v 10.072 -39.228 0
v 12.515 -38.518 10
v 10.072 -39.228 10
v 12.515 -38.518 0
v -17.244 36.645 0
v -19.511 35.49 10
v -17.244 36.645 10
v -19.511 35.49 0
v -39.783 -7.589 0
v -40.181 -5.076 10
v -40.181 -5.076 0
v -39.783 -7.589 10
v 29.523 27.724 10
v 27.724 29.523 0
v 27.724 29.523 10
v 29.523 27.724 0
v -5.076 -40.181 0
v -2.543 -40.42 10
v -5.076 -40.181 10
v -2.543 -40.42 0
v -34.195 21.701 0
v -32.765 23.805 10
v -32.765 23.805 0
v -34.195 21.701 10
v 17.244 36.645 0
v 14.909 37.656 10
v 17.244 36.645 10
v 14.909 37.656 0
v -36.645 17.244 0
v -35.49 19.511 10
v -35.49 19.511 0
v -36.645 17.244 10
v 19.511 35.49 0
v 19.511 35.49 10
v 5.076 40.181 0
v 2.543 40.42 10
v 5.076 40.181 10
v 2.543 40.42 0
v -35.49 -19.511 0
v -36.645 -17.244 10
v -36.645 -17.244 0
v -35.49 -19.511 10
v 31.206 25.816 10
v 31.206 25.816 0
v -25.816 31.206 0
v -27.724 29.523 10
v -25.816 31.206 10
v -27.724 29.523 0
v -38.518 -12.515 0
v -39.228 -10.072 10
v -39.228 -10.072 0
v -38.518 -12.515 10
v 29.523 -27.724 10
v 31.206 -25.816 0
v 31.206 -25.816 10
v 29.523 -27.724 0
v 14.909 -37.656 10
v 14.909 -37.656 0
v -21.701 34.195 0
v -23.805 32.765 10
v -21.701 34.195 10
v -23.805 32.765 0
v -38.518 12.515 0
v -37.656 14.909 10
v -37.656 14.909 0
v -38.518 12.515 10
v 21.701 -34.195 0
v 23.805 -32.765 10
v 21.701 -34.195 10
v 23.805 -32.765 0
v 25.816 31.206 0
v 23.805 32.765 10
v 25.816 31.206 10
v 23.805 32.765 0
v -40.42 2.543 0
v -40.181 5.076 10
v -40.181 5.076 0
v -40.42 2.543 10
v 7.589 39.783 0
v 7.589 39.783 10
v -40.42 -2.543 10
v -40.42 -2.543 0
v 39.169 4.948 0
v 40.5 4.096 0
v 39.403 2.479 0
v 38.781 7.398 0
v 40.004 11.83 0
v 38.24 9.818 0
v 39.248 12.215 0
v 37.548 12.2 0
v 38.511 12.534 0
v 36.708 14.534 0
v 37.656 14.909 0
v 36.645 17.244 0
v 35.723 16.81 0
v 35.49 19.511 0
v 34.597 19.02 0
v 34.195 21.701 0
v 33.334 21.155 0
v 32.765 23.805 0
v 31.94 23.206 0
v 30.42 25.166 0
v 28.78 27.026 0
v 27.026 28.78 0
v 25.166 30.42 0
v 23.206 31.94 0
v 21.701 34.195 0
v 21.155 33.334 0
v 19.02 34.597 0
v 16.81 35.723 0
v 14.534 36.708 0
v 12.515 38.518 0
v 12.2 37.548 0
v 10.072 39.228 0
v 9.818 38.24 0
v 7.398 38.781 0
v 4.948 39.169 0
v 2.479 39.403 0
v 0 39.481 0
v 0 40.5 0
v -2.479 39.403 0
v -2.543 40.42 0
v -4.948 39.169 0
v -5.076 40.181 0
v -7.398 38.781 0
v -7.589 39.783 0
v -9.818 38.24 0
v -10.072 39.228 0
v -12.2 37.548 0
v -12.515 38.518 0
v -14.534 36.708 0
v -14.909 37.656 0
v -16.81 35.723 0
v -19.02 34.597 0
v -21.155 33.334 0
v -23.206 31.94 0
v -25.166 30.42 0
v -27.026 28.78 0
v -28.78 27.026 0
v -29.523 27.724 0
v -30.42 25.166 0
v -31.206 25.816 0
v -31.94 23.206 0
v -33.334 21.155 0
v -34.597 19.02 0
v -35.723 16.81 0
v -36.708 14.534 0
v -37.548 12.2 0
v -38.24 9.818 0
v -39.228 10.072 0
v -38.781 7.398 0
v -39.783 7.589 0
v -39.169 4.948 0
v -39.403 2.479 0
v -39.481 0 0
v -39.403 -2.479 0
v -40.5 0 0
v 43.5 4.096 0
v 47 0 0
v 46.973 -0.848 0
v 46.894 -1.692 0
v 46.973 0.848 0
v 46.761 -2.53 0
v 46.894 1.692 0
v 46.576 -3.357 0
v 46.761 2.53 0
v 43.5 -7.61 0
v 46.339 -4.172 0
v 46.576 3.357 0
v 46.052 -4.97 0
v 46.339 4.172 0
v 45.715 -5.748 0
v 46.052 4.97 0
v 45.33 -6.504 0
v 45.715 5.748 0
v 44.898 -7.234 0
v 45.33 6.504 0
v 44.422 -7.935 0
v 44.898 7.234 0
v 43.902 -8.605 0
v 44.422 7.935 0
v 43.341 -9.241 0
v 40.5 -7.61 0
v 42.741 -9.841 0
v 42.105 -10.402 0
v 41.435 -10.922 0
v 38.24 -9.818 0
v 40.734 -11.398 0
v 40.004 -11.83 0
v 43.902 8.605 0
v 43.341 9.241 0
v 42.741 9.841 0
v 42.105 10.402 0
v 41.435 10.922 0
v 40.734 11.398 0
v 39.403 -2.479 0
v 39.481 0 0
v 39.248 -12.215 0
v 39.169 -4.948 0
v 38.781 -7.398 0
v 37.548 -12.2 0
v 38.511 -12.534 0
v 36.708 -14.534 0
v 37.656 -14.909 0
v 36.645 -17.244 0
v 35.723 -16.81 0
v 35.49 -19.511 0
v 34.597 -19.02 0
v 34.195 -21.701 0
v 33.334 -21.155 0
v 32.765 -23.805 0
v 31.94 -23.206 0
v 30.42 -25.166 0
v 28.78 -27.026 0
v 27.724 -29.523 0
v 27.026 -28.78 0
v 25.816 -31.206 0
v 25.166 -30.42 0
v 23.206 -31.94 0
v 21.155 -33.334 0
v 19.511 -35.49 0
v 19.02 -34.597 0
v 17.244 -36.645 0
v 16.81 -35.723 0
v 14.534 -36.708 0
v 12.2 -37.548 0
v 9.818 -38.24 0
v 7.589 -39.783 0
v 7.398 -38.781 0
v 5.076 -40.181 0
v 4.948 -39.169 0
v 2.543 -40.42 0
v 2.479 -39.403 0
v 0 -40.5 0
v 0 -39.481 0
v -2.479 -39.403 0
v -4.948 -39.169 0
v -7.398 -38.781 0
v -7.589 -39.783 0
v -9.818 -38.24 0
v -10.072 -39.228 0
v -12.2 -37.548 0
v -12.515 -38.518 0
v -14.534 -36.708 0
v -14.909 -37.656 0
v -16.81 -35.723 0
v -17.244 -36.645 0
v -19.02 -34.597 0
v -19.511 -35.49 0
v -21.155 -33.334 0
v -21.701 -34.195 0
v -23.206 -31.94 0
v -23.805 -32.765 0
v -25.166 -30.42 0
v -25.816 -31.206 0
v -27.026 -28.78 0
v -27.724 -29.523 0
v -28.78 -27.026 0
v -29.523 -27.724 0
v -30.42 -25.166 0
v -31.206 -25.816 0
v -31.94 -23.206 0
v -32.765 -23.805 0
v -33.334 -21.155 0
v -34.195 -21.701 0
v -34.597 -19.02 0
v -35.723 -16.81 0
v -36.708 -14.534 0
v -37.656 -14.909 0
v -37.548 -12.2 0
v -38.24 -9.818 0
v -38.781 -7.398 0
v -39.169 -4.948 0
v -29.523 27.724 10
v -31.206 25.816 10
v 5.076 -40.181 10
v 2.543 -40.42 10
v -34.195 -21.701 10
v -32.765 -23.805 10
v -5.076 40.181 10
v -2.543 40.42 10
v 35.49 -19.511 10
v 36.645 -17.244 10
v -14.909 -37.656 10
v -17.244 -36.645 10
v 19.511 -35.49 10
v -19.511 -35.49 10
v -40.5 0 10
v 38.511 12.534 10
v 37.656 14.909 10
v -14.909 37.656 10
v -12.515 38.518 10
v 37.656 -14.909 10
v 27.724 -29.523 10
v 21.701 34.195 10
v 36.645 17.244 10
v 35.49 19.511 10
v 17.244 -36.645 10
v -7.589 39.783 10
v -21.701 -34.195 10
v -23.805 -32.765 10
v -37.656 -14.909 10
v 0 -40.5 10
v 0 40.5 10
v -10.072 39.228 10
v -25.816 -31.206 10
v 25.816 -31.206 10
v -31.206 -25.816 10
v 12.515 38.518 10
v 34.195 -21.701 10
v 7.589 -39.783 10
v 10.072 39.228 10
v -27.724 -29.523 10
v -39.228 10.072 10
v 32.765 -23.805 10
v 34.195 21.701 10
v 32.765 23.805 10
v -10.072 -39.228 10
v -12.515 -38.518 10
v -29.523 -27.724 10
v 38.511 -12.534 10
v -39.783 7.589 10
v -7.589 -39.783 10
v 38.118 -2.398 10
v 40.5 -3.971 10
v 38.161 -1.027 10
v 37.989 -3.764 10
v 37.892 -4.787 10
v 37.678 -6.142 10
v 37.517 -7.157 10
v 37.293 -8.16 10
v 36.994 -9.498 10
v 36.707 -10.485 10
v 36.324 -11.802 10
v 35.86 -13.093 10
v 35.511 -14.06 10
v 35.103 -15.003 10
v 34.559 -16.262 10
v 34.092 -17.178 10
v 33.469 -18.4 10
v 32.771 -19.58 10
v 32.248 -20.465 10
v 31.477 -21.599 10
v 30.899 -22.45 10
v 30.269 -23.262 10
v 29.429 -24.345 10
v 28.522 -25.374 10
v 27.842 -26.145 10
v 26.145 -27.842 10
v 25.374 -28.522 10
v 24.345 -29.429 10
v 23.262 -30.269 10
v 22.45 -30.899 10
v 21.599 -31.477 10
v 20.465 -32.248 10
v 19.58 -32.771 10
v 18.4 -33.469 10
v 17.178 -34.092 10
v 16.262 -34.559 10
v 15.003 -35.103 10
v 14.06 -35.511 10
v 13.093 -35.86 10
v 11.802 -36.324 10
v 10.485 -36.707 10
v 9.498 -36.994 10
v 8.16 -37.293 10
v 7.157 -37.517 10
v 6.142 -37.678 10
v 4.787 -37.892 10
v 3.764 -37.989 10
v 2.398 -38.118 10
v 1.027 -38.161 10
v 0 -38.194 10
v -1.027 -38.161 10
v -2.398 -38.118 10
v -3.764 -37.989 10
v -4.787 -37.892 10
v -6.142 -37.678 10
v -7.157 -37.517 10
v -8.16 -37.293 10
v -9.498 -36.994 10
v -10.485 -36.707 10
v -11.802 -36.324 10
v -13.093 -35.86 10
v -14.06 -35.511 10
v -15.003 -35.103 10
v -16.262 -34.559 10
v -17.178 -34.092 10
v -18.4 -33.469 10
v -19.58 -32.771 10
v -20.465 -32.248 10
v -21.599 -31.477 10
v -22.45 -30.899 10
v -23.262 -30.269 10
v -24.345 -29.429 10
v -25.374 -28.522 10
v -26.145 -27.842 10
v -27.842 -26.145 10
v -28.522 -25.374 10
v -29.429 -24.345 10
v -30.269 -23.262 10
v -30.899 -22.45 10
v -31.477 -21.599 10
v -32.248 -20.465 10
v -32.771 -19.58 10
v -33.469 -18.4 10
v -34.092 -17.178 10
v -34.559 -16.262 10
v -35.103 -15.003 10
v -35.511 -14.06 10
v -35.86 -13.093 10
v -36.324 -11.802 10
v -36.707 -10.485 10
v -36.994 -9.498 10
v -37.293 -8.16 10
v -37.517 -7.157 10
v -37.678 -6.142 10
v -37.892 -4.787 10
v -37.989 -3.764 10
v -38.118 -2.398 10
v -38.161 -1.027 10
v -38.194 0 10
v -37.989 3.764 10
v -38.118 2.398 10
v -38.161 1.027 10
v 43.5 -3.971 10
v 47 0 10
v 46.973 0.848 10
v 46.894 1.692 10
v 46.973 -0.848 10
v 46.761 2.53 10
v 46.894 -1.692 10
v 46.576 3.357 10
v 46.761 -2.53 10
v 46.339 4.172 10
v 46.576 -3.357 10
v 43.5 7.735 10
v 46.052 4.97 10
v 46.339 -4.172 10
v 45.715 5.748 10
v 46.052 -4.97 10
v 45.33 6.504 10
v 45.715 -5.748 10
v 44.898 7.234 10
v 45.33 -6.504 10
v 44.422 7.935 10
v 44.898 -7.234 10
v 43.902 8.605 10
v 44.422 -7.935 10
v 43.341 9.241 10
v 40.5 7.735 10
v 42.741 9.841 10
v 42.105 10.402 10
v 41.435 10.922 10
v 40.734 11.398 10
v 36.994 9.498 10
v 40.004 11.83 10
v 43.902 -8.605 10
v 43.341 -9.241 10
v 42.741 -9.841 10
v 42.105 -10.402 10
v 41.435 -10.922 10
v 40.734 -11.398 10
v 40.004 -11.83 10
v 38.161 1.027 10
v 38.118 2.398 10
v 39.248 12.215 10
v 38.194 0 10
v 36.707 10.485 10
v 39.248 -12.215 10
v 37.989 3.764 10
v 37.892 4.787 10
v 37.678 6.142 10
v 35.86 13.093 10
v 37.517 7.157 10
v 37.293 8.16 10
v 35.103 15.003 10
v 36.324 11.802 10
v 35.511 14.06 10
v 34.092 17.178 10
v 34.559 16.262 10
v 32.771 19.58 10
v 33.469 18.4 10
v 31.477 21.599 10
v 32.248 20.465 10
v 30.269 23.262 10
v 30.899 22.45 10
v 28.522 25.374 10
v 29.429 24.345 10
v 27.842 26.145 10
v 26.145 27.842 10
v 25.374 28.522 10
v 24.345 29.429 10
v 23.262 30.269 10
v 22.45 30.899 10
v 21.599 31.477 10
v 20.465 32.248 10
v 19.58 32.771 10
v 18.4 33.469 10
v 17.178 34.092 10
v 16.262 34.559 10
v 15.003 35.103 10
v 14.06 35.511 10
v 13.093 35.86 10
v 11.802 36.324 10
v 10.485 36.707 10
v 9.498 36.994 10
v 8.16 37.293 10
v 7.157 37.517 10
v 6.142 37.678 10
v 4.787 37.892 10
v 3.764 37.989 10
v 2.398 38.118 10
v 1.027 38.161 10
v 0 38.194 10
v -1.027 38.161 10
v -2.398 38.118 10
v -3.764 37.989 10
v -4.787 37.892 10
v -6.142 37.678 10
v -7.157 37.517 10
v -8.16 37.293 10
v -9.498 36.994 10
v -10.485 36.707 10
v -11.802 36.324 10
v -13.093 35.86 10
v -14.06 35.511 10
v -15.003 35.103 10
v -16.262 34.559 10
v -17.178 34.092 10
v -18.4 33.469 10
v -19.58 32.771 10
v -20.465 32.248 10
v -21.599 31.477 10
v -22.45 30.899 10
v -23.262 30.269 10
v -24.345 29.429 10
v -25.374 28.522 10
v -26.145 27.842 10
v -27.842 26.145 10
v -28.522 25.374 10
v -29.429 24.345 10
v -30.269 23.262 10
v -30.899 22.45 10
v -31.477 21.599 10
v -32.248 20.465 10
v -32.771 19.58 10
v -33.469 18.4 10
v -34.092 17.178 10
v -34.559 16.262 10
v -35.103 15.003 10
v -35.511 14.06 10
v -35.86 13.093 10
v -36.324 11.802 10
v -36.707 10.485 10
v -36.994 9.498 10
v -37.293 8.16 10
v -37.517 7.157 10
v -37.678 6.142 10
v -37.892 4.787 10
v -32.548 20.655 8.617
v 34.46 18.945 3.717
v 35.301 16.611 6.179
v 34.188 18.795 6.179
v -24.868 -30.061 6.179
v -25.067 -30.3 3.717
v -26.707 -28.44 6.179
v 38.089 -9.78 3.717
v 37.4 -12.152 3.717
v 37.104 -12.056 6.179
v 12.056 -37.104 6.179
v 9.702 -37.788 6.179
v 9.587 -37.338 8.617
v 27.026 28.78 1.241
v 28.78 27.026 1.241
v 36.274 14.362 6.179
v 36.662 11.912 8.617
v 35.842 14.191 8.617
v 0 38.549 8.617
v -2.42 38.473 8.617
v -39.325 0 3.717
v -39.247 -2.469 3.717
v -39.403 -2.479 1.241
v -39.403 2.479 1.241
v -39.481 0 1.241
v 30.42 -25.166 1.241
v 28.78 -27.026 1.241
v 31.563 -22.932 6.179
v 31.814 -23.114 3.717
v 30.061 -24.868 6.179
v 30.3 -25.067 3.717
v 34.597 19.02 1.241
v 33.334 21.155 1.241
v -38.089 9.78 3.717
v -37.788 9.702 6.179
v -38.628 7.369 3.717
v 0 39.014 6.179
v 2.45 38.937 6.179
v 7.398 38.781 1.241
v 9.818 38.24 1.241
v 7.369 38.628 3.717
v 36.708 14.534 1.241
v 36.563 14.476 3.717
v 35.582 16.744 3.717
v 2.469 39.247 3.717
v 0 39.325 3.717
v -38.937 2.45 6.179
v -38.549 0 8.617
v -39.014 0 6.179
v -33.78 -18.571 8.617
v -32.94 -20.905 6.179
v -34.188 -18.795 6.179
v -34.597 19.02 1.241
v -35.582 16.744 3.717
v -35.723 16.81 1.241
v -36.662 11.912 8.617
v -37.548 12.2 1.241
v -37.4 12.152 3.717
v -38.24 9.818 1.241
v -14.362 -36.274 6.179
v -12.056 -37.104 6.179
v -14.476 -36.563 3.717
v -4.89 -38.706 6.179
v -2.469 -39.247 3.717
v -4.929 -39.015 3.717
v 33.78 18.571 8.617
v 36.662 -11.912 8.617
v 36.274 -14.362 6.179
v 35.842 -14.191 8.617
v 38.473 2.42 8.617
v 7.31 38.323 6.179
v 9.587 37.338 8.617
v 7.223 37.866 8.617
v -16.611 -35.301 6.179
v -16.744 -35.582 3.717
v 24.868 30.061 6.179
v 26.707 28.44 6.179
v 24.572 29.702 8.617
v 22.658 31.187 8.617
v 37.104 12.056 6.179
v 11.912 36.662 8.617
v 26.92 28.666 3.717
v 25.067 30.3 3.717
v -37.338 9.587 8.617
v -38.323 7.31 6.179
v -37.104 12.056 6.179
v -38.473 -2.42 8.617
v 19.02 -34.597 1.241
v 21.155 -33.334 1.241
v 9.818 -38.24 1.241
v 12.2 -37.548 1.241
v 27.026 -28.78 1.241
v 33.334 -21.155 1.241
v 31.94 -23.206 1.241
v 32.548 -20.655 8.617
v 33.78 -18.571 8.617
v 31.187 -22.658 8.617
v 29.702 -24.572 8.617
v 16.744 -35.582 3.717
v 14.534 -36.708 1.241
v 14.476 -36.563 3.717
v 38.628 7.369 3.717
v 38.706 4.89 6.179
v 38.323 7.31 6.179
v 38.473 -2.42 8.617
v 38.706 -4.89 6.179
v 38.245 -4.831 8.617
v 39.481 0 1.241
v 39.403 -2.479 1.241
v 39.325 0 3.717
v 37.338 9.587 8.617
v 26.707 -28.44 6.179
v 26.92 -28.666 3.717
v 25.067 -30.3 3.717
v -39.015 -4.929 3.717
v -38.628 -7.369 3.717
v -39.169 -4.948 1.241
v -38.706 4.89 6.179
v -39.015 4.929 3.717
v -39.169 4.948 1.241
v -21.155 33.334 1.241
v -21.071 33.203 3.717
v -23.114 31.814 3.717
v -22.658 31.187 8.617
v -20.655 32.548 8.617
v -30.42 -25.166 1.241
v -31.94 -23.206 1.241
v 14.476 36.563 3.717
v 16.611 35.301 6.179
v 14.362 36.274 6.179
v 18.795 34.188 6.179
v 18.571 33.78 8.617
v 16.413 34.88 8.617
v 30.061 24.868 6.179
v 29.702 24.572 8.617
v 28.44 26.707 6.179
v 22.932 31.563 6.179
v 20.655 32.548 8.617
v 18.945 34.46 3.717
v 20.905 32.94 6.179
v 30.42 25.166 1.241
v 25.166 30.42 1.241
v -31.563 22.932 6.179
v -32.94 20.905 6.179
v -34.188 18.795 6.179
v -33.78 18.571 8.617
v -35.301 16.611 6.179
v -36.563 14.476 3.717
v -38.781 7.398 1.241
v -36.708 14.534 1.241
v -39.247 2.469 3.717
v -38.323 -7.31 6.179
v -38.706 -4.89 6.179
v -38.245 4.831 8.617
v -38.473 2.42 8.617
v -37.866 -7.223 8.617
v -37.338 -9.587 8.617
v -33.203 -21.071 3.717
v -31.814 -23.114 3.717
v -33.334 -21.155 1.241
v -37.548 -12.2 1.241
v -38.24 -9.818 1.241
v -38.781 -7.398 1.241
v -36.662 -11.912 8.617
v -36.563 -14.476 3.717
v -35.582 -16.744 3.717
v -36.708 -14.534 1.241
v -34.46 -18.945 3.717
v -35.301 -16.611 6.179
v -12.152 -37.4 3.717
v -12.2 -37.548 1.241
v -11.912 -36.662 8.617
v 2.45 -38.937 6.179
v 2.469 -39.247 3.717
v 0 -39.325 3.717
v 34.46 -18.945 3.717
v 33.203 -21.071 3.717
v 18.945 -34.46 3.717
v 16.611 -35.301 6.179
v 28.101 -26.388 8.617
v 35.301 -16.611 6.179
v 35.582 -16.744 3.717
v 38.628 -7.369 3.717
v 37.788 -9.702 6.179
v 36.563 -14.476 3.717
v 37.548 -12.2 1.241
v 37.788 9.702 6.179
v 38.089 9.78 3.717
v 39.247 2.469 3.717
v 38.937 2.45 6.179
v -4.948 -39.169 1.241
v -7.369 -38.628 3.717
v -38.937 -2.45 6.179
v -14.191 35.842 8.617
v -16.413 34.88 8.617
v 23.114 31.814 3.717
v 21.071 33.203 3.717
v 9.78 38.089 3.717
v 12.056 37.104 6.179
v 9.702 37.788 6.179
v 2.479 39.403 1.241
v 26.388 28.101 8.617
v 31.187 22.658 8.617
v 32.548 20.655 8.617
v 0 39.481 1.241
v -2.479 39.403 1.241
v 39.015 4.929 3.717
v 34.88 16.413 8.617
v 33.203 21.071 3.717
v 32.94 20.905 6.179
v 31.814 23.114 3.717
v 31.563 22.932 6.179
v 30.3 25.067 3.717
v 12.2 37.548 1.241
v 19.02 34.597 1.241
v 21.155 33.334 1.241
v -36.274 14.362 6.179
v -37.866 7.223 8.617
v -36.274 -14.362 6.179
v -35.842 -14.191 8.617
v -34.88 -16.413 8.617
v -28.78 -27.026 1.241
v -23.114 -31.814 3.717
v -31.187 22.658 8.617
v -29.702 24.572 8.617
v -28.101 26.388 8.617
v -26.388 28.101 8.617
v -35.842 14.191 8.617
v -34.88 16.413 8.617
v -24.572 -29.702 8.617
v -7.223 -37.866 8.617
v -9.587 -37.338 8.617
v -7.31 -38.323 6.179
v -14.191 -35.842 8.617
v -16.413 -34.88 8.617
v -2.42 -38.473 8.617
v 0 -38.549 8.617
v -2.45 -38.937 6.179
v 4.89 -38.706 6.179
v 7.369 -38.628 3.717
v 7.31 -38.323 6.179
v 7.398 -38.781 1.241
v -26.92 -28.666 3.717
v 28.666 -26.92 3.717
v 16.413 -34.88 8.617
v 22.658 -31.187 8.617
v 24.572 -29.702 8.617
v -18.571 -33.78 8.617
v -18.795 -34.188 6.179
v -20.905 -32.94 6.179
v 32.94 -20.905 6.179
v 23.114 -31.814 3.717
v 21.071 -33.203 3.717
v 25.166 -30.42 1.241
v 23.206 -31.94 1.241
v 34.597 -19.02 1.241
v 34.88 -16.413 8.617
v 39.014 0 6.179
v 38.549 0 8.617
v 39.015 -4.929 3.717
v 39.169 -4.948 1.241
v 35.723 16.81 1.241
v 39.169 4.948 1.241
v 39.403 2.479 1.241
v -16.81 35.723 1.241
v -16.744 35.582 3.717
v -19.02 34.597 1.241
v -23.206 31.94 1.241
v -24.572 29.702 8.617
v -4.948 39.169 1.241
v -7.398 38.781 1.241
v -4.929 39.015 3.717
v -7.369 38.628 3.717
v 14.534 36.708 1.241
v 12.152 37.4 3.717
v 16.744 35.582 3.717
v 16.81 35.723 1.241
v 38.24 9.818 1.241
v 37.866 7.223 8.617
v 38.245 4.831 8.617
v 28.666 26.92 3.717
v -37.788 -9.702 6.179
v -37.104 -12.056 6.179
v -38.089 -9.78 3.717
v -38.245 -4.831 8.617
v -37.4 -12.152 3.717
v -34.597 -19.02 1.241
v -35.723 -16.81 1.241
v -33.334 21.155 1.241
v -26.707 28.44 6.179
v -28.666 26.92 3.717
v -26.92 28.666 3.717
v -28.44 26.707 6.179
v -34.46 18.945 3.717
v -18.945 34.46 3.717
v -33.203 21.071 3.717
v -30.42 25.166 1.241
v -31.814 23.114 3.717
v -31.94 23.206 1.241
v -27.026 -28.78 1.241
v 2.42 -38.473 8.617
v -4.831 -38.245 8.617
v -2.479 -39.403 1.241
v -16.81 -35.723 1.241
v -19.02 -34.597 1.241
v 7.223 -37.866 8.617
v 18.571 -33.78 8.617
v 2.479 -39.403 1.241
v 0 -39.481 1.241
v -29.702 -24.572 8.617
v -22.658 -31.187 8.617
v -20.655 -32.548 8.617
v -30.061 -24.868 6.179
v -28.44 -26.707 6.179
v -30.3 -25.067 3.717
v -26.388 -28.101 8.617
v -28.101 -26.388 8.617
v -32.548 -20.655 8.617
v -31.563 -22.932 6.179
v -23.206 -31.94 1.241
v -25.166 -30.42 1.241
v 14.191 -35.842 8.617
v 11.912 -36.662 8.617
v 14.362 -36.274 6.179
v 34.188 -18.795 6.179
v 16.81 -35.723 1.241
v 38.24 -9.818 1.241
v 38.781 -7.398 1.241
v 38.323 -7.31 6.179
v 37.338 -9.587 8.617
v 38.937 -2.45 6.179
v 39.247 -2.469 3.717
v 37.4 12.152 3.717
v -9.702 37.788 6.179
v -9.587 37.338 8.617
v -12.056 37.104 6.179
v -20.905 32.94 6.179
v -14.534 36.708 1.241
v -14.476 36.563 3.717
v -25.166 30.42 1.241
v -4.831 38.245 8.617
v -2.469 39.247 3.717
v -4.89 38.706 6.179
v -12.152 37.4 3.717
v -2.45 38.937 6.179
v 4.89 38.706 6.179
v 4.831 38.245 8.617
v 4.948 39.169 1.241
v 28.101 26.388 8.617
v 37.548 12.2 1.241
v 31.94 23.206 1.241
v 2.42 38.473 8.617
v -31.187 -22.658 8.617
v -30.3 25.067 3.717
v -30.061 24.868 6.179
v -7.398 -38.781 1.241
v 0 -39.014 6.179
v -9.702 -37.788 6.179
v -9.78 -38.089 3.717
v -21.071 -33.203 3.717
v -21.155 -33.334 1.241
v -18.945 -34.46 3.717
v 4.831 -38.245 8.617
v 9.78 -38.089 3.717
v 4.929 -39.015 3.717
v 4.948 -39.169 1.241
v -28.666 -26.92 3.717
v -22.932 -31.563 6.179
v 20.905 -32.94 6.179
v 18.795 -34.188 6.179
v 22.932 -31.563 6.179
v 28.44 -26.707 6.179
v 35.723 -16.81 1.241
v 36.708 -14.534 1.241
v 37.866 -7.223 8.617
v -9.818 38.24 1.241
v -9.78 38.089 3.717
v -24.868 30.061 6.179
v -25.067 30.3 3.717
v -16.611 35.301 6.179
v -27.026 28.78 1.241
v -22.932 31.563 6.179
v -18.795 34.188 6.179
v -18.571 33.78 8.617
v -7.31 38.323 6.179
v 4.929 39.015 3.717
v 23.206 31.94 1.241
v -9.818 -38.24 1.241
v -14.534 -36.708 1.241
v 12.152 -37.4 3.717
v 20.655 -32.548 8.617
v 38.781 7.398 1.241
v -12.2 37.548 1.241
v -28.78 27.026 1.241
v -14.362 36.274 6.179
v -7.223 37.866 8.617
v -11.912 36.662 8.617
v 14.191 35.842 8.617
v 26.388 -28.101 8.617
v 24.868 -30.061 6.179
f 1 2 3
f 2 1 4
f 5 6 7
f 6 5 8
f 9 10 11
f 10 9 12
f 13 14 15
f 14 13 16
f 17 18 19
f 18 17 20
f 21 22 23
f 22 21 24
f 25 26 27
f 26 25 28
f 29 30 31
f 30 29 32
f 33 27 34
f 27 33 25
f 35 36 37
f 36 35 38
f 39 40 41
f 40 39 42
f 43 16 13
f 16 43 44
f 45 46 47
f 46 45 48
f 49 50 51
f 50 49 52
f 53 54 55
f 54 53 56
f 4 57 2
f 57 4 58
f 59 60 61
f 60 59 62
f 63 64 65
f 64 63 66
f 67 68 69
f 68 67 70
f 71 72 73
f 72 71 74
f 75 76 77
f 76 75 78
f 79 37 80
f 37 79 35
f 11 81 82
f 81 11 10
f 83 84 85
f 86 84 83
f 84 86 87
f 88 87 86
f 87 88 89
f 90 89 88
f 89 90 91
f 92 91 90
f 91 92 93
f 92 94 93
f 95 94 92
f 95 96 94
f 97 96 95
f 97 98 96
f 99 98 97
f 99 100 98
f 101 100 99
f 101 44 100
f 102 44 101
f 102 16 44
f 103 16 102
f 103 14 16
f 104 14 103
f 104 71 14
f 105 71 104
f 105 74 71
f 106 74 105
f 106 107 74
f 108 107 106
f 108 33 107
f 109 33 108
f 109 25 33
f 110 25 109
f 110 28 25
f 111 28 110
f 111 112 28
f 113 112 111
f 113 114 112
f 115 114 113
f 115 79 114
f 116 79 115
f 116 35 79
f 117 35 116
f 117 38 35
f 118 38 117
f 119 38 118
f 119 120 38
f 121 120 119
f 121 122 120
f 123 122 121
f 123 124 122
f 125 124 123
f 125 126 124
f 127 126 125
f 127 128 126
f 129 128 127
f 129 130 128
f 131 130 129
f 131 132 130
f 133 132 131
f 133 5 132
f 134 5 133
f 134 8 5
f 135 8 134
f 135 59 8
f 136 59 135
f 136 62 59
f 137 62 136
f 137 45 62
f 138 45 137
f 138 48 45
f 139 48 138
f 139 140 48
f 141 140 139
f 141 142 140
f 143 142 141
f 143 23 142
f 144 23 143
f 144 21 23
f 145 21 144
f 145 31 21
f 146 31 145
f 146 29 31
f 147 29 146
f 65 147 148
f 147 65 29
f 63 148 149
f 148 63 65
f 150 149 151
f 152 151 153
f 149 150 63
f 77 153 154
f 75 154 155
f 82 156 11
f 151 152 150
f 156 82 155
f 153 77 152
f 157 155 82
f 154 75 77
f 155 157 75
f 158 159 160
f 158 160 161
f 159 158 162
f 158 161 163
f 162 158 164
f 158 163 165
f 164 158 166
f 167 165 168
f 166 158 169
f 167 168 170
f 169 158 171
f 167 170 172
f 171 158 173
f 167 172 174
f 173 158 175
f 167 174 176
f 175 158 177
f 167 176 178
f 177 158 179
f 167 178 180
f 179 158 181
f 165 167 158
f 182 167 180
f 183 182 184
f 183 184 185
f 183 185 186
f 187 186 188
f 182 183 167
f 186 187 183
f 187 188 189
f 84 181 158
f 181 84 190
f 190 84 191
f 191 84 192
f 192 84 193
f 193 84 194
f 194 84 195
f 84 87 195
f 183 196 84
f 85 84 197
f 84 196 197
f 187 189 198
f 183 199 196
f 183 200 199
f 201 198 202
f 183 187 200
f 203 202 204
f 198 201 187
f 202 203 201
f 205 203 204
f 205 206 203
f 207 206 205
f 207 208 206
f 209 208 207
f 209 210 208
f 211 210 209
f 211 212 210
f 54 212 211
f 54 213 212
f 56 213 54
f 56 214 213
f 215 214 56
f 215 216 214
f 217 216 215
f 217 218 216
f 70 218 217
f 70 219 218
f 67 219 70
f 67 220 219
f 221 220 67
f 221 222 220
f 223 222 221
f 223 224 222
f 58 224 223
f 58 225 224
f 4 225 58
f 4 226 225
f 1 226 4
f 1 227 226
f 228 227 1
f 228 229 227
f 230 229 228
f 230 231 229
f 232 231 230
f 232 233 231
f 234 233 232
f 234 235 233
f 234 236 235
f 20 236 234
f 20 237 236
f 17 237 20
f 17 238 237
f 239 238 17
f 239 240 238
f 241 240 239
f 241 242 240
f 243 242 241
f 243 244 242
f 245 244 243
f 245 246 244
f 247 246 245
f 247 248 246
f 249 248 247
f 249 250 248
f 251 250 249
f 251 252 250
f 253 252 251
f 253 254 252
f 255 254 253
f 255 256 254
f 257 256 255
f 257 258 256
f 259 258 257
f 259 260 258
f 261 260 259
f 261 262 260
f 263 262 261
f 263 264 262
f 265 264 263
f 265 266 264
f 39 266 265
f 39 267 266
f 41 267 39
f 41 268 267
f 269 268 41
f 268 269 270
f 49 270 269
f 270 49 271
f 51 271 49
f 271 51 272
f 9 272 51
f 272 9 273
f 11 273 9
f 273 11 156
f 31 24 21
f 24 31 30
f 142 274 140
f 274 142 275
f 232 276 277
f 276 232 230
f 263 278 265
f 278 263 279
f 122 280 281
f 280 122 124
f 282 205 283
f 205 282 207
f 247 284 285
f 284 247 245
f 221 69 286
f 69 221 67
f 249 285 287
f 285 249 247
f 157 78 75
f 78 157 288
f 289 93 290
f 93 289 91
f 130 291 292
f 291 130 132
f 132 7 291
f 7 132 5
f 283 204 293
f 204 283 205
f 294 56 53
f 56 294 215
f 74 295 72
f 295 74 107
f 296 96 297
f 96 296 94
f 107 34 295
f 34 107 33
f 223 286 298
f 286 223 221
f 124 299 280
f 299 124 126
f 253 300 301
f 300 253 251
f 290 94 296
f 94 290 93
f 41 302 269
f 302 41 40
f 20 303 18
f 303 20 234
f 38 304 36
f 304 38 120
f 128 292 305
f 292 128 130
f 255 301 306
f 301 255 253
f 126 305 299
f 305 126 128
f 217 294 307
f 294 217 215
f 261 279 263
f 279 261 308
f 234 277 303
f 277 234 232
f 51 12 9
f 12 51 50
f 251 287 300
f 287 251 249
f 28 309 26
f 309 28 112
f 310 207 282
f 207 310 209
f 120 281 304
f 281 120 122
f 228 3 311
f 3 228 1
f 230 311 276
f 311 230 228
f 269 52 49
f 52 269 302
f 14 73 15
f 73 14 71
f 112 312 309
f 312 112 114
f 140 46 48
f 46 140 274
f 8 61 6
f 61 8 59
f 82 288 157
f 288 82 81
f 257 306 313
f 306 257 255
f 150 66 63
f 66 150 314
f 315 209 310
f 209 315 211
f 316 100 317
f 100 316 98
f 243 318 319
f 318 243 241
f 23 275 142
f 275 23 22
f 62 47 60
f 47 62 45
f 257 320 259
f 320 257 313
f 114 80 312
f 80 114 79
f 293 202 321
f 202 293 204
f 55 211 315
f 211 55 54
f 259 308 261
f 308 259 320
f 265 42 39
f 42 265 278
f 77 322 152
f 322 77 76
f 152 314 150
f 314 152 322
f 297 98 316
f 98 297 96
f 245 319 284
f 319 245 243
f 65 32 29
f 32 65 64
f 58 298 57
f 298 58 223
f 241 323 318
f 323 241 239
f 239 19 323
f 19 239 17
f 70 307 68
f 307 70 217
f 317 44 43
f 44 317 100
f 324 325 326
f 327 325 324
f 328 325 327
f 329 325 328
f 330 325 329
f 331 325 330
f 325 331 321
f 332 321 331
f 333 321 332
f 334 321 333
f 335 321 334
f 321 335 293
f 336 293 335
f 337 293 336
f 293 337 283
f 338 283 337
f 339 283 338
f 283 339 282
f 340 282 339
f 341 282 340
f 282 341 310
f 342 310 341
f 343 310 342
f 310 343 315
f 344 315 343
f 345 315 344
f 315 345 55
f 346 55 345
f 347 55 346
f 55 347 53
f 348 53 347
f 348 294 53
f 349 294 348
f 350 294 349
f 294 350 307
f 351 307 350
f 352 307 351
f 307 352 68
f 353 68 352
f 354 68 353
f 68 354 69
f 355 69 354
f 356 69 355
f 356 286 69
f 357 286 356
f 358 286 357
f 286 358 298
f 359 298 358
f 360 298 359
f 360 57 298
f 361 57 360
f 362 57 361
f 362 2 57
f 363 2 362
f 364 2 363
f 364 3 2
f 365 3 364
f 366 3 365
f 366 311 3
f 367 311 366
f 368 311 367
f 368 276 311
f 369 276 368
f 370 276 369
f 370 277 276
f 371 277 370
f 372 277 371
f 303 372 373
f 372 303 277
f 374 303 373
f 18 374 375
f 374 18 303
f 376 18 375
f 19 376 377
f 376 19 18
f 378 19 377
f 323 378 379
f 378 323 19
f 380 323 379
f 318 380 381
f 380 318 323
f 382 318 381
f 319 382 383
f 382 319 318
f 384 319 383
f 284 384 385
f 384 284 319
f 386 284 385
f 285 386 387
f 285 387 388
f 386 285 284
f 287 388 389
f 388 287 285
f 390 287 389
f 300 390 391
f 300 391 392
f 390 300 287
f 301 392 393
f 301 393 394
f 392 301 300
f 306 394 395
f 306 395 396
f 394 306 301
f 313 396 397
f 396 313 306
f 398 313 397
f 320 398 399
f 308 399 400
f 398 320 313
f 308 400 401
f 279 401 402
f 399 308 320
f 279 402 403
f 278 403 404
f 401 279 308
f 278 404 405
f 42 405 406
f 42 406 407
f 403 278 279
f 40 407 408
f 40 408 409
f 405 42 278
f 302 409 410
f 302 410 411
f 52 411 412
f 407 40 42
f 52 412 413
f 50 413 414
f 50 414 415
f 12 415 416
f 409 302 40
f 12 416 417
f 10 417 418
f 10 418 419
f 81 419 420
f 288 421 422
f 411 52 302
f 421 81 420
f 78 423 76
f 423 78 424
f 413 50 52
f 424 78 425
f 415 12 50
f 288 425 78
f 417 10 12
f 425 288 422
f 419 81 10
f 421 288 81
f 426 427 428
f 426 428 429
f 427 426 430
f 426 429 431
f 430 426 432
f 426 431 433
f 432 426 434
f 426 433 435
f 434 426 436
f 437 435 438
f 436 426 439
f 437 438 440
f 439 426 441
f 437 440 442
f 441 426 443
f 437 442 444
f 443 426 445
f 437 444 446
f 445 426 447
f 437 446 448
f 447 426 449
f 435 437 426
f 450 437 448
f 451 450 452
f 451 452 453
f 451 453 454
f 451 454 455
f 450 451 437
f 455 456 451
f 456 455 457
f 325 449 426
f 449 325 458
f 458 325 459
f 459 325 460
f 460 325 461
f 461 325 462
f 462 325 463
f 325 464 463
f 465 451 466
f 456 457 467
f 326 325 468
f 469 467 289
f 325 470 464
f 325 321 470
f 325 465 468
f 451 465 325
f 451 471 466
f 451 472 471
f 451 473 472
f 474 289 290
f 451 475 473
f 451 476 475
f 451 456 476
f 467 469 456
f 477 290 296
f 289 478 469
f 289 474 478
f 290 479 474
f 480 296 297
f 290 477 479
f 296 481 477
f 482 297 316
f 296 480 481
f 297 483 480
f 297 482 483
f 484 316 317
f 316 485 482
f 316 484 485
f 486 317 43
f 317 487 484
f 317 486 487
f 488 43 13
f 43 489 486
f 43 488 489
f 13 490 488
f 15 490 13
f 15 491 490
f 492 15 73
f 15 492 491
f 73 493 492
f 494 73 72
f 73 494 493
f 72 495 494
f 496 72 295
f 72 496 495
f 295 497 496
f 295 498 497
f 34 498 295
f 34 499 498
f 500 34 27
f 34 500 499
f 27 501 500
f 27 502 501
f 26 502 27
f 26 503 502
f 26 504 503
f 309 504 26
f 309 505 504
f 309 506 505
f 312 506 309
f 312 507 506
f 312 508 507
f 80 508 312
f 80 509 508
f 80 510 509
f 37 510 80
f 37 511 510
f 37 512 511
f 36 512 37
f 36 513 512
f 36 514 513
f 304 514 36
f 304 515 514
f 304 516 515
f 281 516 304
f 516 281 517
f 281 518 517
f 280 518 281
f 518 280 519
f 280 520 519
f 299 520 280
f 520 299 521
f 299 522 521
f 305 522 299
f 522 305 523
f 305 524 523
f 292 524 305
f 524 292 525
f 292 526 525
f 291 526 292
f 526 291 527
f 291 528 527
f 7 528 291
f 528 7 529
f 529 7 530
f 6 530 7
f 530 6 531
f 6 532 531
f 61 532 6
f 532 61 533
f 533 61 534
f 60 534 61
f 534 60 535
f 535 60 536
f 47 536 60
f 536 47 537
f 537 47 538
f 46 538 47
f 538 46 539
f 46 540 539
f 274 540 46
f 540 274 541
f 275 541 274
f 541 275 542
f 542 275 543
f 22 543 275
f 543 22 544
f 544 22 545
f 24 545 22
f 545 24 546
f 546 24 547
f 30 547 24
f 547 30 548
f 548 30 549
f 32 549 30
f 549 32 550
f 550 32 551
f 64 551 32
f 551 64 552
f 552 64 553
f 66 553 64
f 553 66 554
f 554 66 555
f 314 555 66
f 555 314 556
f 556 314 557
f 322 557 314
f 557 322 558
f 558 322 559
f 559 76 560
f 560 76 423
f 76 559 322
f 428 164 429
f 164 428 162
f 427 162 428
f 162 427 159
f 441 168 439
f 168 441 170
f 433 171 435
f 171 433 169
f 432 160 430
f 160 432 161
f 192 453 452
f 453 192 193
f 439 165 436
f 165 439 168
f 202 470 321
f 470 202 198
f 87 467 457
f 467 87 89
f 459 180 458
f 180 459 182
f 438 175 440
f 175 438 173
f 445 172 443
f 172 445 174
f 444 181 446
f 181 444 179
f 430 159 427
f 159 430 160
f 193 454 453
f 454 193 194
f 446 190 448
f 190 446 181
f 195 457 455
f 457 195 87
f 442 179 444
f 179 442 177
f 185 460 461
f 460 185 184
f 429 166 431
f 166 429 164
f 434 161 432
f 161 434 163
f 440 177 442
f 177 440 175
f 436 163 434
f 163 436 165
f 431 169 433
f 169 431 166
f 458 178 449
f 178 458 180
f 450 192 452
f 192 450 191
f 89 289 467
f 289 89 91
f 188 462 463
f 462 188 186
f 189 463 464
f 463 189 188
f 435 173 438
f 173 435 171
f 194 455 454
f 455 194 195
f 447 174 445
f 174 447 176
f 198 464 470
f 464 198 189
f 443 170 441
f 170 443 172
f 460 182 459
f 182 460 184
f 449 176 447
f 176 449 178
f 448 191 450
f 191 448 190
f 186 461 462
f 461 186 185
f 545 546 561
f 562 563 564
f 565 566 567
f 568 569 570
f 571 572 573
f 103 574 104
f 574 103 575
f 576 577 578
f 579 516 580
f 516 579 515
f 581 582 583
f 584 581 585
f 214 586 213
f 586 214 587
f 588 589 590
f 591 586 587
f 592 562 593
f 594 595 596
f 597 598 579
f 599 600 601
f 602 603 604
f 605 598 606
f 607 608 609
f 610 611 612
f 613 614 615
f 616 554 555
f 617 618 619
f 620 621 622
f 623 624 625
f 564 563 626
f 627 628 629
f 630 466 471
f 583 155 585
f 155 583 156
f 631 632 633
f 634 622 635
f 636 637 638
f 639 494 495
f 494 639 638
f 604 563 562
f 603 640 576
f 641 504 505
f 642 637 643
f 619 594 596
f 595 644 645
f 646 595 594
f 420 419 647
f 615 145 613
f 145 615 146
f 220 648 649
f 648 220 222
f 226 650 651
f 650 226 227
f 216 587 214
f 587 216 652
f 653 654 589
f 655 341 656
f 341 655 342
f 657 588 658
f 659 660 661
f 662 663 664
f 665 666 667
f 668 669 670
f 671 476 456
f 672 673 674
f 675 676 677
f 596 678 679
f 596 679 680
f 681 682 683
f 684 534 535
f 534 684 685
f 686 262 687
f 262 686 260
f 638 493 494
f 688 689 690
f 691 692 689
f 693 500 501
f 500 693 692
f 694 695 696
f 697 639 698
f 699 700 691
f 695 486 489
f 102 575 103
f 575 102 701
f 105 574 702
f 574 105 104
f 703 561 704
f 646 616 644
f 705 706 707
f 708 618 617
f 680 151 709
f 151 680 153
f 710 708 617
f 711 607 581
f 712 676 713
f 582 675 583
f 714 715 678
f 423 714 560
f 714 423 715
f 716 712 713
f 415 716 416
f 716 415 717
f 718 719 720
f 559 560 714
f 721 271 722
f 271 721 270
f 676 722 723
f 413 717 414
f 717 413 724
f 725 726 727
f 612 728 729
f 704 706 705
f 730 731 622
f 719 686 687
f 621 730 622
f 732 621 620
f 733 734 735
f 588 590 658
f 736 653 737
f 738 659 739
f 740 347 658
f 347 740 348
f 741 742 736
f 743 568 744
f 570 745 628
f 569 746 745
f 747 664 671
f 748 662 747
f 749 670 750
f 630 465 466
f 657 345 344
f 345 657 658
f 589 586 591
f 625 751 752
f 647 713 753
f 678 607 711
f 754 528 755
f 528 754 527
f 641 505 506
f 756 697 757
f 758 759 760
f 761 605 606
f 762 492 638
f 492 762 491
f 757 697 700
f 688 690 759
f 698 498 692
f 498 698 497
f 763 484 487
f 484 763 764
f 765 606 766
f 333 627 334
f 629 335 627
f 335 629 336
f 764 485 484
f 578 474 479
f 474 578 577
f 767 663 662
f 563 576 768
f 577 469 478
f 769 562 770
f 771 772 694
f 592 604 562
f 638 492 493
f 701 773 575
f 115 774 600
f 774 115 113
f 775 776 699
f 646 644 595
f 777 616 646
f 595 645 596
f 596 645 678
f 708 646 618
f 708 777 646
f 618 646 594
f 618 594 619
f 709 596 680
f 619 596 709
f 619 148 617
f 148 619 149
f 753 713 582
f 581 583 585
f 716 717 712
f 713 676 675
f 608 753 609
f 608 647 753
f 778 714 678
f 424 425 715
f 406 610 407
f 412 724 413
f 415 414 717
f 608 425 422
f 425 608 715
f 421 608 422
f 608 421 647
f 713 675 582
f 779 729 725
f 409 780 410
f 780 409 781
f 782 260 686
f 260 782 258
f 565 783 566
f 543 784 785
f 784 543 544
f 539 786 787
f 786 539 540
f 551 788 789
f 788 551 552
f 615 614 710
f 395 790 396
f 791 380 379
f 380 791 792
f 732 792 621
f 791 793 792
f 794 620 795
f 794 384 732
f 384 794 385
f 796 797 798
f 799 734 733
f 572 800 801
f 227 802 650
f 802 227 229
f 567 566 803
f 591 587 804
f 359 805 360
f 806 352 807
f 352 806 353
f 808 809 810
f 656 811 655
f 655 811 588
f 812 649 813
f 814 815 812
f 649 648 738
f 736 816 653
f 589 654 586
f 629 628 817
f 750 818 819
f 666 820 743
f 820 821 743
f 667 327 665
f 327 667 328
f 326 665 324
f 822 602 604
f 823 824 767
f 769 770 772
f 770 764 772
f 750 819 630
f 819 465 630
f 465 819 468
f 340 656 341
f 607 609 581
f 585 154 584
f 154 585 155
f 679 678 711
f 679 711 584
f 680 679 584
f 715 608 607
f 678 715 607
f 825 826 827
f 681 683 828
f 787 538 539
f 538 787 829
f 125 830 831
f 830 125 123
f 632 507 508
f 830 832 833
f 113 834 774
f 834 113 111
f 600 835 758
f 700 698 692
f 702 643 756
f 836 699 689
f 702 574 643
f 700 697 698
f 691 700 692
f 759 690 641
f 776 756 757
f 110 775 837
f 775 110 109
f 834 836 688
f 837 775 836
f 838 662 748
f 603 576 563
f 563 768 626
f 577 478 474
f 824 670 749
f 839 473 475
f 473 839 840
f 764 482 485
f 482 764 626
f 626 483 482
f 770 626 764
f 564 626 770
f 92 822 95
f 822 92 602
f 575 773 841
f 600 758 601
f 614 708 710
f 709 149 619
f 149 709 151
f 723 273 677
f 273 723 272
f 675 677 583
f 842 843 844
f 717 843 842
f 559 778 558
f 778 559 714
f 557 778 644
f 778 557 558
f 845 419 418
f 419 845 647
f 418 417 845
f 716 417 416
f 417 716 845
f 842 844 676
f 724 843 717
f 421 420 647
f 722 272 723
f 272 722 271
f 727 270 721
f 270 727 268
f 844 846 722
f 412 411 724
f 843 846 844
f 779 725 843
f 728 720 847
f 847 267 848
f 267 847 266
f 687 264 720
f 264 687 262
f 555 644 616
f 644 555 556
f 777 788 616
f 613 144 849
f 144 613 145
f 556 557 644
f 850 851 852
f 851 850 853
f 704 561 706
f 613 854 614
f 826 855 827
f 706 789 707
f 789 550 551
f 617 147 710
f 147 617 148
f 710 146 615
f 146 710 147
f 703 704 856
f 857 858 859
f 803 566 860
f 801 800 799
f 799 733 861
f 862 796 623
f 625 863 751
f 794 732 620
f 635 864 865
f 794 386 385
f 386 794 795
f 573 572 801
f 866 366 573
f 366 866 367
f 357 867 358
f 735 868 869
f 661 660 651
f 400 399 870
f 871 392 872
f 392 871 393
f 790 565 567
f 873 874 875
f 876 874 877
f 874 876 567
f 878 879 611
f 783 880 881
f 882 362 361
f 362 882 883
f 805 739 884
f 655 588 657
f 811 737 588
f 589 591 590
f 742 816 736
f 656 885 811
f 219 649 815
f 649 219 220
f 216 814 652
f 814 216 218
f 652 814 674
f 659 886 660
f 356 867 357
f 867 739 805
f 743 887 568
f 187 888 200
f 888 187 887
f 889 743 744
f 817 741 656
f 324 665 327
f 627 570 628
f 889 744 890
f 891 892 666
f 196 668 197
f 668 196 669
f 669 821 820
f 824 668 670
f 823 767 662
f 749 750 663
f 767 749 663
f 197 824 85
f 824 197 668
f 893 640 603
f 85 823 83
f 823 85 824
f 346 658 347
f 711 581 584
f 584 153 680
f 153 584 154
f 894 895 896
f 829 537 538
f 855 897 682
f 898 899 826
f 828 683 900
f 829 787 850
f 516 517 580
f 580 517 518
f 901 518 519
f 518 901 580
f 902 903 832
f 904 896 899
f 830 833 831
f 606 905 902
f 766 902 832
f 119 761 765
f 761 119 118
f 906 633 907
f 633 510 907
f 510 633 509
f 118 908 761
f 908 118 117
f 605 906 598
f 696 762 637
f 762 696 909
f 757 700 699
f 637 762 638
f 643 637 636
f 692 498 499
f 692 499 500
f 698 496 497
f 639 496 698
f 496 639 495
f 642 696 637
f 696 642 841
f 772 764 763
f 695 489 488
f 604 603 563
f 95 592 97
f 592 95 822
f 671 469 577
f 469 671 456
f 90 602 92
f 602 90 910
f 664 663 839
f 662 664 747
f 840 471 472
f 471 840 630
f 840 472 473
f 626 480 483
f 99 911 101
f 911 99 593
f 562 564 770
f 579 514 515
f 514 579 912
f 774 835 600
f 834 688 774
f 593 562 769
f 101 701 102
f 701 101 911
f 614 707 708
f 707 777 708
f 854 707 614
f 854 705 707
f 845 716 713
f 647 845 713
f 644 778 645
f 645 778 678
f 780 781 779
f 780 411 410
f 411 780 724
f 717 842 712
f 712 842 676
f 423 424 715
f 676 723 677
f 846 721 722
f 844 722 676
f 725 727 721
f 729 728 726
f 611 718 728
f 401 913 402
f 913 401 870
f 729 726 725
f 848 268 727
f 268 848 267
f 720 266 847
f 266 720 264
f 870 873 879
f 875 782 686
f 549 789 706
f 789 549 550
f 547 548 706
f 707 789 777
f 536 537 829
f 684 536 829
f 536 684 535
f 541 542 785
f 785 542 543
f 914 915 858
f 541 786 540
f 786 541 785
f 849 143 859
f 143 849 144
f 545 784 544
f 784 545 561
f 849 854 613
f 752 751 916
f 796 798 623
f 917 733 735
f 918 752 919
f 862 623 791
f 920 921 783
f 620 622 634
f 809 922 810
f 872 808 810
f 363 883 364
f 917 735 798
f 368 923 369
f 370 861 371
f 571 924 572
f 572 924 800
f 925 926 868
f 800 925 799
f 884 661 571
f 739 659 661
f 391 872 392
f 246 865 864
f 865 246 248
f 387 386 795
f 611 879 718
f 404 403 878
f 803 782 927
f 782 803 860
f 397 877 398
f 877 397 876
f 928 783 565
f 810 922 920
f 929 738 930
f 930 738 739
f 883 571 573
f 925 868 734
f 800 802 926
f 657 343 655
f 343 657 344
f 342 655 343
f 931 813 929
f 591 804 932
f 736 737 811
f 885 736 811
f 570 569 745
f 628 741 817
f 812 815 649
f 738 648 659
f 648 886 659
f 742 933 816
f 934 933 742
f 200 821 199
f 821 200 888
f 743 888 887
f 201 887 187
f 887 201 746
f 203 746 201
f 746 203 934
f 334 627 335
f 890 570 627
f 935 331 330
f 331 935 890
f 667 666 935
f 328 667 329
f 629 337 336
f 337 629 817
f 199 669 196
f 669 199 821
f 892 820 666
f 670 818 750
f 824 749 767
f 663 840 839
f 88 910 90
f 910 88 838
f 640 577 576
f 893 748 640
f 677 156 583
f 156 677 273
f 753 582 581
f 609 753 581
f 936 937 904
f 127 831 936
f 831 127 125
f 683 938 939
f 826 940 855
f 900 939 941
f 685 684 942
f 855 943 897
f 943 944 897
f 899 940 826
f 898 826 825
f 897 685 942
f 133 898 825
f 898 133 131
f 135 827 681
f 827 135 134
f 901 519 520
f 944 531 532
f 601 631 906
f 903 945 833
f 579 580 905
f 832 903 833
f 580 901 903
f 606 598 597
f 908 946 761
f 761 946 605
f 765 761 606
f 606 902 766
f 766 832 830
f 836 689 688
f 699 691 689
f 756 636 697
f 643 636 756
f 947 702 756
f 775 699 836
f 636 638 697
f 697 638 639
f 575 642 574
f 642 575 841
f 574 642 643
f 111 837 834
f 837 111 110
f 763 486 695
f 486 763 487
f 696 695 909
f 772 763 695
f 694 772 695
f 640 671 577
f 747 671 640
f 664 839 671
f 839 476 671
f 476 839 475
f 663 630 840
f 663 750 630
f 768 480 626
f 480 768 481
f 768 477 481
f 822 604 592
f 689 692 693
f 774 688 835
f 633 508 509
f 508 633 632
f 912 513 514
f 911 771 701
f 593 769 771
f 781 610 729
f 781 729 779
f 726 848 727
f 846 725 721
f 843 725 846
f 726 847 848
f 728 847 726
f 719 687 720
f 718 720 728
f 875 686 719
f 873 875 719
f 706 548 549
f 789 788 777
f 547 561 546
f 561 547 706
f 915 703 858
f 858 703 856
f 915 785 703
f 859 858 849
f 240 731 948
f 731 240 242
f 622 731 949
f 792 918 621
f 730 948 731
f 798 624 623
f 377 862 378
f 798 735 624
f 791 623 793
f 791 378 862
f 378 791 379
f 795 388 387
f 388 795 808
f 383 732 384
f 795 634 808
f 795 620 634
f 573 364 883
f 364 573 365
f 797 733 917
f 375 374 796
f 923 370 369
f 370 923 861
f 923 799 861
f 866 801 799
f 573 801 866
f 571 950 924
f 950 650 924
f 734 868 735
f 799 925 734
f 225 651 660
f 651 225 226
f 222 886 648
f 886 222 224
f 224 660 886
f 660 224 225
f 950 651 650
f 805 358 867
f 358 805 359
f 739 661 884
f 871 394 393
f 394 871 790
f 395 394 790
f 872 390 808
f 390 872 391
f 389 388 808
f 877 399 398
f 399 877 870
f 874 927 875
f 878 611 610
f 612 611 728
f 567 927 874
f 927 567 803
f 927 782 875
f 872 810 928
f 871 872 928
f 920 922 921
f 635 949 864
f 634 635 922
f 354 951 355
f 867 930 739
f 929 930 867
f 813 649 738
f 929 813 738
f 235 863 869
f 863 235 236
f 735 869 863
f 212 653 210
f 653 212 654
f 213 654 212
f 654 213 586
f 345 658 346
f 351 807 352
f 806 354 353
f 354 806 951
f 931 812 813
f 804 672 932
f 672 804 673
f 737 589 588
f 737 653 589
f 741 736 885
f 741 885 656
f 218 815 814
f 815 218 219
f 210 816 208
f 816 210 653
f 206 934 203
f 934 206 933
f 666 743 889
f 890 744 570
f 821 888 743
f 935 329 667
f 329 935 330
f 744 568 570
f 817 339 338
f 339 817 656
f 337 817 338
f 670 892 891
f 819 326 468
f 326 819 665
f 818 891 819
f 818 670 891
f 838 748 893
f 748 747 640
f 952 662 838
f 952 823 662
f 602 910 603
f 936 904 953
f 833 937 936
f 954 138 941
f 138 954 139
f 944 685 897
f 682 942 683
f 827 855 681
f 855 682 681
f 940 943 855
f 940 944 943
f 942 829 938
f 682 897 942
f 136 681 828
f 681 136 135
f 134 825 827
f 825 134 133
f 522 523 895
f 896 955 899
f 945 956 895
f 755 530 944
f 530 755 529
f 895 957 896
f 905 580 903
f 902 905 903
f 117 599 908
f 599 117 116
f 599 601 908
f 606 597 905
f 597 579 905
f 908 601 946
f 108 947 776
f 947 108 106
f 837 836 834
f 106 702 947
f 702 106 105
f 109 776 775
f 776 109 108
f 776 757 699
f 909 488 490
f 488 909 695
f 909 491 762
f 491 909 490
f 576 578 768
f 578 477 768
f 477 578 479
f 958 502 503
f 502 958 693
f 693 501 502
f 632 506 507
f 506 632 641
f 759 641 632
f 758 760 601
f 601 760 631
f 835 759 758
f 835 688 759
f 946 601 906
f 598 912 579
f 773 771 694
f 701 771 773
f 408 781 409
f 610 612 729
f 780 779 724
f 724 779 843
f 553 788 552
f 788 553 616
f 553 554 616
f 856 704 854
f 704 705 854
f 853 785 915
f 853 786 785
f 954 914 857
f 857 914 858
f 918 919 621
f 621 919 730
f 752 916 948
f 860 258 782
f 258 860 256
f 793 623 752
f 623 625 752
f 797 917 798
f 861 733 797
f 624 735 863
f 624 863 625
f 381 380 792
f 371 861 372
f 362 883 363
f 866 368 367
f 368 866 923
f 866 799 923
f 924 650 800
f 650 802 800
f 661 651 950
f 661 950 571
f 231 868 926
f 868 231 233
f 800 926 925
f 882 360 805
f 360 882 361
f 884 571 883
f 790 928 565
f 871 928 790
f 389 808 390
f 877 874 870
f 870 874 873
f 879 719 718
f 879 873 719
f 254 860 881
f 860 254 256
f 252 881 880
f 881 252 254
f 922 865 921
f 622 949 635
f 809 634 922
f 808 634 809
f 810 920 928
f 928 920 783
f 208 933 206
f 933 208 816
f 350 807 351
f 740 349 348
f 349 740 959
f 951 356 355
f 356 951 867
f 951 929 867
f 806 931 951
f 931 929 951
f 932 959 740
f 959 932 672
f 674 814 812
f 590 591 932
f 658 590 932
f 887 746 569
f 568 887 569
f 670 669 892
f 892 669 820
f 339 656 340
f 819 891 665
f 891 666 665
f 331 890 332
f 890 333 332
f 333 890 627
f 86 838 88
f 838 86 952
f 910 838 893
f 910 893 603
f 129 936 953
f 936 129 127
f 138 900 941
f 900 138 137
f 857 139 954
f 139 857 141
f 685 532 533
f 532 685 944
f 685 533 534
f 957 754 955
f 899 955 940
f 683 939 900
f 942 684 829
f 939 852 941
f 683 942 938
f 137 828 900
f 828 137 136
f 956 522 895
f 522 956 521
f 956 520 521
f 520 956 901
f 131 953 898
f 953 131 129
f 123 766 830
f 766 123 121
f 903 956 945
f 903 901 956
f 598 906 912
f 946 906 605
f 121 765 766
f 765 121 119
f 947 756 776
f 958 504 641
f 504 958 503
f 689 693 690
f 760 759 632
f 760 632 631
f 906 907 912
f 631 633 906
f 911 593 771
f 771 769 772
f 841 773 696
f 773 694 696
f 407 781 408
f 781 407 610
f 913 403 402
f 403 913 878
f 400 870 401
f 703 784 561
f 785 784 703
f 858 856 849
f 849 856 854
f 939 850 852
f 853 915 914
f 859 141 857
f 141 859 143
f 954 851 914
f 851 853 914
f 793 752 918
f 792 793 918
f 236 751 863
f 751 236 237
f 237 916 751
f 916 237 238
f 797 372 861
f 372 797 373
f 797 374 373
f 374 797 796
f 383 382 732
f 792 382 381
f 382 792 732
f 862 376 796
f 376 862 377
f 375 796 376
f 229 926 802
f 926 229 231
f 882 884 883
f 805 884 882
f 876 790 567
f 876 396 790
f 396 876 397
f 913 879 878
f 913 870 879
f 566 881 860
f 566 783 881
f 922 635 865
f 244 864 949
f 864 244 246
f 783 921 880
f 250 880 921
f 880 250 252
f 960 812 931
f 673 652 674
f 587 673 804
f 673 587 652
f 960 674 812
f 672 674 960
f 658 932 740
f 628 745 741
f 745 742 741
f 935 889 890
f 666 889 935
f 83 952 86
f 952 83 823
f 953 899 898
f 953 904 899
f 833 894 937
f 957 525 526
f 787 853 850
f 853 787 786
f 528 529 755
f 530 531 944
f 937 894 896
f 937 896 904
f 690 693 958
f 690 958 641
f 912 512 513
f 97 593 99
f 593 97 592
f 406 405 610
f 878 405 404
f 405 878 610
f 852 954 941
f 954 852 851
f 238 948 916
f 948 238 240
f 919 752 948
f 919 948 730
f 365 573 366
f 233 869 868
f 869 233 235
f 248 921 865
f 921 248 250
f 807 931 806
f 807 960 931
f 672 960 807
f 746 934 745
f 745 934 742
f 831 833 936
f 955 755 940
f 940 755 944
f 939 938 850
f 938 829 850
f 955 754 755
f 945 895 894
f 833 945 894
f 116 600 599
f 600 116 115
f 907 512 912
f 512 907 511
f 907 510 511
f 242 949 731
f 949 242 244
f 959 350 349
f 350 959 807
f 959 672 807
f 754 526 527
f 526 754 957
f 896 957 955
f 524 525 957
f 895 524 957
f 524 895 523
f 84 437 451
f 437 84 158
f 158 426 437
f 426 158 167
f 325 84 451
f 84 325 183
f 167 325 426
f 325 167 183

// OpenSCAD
//
// ktBOX17
//
//

gap1 = 0.001;
gap2 = 0.003;
th = 2;




base();






module base()
{
difference()
{

    union()
    {
        translate([0, 0, 0]) cylinder(h=10, r=(79+th)/2, $fn=100);
        translate([79/2-6, 0, 0]) cylinder(h=10, r=27/2, $fn=100);
    }
    #sphere(d=79, $fn=100);
    
    #translate([79/2+1, -11.25, -10]) rotate([-20, 0, 0]) cube([3, 11, 100]);
}
}
